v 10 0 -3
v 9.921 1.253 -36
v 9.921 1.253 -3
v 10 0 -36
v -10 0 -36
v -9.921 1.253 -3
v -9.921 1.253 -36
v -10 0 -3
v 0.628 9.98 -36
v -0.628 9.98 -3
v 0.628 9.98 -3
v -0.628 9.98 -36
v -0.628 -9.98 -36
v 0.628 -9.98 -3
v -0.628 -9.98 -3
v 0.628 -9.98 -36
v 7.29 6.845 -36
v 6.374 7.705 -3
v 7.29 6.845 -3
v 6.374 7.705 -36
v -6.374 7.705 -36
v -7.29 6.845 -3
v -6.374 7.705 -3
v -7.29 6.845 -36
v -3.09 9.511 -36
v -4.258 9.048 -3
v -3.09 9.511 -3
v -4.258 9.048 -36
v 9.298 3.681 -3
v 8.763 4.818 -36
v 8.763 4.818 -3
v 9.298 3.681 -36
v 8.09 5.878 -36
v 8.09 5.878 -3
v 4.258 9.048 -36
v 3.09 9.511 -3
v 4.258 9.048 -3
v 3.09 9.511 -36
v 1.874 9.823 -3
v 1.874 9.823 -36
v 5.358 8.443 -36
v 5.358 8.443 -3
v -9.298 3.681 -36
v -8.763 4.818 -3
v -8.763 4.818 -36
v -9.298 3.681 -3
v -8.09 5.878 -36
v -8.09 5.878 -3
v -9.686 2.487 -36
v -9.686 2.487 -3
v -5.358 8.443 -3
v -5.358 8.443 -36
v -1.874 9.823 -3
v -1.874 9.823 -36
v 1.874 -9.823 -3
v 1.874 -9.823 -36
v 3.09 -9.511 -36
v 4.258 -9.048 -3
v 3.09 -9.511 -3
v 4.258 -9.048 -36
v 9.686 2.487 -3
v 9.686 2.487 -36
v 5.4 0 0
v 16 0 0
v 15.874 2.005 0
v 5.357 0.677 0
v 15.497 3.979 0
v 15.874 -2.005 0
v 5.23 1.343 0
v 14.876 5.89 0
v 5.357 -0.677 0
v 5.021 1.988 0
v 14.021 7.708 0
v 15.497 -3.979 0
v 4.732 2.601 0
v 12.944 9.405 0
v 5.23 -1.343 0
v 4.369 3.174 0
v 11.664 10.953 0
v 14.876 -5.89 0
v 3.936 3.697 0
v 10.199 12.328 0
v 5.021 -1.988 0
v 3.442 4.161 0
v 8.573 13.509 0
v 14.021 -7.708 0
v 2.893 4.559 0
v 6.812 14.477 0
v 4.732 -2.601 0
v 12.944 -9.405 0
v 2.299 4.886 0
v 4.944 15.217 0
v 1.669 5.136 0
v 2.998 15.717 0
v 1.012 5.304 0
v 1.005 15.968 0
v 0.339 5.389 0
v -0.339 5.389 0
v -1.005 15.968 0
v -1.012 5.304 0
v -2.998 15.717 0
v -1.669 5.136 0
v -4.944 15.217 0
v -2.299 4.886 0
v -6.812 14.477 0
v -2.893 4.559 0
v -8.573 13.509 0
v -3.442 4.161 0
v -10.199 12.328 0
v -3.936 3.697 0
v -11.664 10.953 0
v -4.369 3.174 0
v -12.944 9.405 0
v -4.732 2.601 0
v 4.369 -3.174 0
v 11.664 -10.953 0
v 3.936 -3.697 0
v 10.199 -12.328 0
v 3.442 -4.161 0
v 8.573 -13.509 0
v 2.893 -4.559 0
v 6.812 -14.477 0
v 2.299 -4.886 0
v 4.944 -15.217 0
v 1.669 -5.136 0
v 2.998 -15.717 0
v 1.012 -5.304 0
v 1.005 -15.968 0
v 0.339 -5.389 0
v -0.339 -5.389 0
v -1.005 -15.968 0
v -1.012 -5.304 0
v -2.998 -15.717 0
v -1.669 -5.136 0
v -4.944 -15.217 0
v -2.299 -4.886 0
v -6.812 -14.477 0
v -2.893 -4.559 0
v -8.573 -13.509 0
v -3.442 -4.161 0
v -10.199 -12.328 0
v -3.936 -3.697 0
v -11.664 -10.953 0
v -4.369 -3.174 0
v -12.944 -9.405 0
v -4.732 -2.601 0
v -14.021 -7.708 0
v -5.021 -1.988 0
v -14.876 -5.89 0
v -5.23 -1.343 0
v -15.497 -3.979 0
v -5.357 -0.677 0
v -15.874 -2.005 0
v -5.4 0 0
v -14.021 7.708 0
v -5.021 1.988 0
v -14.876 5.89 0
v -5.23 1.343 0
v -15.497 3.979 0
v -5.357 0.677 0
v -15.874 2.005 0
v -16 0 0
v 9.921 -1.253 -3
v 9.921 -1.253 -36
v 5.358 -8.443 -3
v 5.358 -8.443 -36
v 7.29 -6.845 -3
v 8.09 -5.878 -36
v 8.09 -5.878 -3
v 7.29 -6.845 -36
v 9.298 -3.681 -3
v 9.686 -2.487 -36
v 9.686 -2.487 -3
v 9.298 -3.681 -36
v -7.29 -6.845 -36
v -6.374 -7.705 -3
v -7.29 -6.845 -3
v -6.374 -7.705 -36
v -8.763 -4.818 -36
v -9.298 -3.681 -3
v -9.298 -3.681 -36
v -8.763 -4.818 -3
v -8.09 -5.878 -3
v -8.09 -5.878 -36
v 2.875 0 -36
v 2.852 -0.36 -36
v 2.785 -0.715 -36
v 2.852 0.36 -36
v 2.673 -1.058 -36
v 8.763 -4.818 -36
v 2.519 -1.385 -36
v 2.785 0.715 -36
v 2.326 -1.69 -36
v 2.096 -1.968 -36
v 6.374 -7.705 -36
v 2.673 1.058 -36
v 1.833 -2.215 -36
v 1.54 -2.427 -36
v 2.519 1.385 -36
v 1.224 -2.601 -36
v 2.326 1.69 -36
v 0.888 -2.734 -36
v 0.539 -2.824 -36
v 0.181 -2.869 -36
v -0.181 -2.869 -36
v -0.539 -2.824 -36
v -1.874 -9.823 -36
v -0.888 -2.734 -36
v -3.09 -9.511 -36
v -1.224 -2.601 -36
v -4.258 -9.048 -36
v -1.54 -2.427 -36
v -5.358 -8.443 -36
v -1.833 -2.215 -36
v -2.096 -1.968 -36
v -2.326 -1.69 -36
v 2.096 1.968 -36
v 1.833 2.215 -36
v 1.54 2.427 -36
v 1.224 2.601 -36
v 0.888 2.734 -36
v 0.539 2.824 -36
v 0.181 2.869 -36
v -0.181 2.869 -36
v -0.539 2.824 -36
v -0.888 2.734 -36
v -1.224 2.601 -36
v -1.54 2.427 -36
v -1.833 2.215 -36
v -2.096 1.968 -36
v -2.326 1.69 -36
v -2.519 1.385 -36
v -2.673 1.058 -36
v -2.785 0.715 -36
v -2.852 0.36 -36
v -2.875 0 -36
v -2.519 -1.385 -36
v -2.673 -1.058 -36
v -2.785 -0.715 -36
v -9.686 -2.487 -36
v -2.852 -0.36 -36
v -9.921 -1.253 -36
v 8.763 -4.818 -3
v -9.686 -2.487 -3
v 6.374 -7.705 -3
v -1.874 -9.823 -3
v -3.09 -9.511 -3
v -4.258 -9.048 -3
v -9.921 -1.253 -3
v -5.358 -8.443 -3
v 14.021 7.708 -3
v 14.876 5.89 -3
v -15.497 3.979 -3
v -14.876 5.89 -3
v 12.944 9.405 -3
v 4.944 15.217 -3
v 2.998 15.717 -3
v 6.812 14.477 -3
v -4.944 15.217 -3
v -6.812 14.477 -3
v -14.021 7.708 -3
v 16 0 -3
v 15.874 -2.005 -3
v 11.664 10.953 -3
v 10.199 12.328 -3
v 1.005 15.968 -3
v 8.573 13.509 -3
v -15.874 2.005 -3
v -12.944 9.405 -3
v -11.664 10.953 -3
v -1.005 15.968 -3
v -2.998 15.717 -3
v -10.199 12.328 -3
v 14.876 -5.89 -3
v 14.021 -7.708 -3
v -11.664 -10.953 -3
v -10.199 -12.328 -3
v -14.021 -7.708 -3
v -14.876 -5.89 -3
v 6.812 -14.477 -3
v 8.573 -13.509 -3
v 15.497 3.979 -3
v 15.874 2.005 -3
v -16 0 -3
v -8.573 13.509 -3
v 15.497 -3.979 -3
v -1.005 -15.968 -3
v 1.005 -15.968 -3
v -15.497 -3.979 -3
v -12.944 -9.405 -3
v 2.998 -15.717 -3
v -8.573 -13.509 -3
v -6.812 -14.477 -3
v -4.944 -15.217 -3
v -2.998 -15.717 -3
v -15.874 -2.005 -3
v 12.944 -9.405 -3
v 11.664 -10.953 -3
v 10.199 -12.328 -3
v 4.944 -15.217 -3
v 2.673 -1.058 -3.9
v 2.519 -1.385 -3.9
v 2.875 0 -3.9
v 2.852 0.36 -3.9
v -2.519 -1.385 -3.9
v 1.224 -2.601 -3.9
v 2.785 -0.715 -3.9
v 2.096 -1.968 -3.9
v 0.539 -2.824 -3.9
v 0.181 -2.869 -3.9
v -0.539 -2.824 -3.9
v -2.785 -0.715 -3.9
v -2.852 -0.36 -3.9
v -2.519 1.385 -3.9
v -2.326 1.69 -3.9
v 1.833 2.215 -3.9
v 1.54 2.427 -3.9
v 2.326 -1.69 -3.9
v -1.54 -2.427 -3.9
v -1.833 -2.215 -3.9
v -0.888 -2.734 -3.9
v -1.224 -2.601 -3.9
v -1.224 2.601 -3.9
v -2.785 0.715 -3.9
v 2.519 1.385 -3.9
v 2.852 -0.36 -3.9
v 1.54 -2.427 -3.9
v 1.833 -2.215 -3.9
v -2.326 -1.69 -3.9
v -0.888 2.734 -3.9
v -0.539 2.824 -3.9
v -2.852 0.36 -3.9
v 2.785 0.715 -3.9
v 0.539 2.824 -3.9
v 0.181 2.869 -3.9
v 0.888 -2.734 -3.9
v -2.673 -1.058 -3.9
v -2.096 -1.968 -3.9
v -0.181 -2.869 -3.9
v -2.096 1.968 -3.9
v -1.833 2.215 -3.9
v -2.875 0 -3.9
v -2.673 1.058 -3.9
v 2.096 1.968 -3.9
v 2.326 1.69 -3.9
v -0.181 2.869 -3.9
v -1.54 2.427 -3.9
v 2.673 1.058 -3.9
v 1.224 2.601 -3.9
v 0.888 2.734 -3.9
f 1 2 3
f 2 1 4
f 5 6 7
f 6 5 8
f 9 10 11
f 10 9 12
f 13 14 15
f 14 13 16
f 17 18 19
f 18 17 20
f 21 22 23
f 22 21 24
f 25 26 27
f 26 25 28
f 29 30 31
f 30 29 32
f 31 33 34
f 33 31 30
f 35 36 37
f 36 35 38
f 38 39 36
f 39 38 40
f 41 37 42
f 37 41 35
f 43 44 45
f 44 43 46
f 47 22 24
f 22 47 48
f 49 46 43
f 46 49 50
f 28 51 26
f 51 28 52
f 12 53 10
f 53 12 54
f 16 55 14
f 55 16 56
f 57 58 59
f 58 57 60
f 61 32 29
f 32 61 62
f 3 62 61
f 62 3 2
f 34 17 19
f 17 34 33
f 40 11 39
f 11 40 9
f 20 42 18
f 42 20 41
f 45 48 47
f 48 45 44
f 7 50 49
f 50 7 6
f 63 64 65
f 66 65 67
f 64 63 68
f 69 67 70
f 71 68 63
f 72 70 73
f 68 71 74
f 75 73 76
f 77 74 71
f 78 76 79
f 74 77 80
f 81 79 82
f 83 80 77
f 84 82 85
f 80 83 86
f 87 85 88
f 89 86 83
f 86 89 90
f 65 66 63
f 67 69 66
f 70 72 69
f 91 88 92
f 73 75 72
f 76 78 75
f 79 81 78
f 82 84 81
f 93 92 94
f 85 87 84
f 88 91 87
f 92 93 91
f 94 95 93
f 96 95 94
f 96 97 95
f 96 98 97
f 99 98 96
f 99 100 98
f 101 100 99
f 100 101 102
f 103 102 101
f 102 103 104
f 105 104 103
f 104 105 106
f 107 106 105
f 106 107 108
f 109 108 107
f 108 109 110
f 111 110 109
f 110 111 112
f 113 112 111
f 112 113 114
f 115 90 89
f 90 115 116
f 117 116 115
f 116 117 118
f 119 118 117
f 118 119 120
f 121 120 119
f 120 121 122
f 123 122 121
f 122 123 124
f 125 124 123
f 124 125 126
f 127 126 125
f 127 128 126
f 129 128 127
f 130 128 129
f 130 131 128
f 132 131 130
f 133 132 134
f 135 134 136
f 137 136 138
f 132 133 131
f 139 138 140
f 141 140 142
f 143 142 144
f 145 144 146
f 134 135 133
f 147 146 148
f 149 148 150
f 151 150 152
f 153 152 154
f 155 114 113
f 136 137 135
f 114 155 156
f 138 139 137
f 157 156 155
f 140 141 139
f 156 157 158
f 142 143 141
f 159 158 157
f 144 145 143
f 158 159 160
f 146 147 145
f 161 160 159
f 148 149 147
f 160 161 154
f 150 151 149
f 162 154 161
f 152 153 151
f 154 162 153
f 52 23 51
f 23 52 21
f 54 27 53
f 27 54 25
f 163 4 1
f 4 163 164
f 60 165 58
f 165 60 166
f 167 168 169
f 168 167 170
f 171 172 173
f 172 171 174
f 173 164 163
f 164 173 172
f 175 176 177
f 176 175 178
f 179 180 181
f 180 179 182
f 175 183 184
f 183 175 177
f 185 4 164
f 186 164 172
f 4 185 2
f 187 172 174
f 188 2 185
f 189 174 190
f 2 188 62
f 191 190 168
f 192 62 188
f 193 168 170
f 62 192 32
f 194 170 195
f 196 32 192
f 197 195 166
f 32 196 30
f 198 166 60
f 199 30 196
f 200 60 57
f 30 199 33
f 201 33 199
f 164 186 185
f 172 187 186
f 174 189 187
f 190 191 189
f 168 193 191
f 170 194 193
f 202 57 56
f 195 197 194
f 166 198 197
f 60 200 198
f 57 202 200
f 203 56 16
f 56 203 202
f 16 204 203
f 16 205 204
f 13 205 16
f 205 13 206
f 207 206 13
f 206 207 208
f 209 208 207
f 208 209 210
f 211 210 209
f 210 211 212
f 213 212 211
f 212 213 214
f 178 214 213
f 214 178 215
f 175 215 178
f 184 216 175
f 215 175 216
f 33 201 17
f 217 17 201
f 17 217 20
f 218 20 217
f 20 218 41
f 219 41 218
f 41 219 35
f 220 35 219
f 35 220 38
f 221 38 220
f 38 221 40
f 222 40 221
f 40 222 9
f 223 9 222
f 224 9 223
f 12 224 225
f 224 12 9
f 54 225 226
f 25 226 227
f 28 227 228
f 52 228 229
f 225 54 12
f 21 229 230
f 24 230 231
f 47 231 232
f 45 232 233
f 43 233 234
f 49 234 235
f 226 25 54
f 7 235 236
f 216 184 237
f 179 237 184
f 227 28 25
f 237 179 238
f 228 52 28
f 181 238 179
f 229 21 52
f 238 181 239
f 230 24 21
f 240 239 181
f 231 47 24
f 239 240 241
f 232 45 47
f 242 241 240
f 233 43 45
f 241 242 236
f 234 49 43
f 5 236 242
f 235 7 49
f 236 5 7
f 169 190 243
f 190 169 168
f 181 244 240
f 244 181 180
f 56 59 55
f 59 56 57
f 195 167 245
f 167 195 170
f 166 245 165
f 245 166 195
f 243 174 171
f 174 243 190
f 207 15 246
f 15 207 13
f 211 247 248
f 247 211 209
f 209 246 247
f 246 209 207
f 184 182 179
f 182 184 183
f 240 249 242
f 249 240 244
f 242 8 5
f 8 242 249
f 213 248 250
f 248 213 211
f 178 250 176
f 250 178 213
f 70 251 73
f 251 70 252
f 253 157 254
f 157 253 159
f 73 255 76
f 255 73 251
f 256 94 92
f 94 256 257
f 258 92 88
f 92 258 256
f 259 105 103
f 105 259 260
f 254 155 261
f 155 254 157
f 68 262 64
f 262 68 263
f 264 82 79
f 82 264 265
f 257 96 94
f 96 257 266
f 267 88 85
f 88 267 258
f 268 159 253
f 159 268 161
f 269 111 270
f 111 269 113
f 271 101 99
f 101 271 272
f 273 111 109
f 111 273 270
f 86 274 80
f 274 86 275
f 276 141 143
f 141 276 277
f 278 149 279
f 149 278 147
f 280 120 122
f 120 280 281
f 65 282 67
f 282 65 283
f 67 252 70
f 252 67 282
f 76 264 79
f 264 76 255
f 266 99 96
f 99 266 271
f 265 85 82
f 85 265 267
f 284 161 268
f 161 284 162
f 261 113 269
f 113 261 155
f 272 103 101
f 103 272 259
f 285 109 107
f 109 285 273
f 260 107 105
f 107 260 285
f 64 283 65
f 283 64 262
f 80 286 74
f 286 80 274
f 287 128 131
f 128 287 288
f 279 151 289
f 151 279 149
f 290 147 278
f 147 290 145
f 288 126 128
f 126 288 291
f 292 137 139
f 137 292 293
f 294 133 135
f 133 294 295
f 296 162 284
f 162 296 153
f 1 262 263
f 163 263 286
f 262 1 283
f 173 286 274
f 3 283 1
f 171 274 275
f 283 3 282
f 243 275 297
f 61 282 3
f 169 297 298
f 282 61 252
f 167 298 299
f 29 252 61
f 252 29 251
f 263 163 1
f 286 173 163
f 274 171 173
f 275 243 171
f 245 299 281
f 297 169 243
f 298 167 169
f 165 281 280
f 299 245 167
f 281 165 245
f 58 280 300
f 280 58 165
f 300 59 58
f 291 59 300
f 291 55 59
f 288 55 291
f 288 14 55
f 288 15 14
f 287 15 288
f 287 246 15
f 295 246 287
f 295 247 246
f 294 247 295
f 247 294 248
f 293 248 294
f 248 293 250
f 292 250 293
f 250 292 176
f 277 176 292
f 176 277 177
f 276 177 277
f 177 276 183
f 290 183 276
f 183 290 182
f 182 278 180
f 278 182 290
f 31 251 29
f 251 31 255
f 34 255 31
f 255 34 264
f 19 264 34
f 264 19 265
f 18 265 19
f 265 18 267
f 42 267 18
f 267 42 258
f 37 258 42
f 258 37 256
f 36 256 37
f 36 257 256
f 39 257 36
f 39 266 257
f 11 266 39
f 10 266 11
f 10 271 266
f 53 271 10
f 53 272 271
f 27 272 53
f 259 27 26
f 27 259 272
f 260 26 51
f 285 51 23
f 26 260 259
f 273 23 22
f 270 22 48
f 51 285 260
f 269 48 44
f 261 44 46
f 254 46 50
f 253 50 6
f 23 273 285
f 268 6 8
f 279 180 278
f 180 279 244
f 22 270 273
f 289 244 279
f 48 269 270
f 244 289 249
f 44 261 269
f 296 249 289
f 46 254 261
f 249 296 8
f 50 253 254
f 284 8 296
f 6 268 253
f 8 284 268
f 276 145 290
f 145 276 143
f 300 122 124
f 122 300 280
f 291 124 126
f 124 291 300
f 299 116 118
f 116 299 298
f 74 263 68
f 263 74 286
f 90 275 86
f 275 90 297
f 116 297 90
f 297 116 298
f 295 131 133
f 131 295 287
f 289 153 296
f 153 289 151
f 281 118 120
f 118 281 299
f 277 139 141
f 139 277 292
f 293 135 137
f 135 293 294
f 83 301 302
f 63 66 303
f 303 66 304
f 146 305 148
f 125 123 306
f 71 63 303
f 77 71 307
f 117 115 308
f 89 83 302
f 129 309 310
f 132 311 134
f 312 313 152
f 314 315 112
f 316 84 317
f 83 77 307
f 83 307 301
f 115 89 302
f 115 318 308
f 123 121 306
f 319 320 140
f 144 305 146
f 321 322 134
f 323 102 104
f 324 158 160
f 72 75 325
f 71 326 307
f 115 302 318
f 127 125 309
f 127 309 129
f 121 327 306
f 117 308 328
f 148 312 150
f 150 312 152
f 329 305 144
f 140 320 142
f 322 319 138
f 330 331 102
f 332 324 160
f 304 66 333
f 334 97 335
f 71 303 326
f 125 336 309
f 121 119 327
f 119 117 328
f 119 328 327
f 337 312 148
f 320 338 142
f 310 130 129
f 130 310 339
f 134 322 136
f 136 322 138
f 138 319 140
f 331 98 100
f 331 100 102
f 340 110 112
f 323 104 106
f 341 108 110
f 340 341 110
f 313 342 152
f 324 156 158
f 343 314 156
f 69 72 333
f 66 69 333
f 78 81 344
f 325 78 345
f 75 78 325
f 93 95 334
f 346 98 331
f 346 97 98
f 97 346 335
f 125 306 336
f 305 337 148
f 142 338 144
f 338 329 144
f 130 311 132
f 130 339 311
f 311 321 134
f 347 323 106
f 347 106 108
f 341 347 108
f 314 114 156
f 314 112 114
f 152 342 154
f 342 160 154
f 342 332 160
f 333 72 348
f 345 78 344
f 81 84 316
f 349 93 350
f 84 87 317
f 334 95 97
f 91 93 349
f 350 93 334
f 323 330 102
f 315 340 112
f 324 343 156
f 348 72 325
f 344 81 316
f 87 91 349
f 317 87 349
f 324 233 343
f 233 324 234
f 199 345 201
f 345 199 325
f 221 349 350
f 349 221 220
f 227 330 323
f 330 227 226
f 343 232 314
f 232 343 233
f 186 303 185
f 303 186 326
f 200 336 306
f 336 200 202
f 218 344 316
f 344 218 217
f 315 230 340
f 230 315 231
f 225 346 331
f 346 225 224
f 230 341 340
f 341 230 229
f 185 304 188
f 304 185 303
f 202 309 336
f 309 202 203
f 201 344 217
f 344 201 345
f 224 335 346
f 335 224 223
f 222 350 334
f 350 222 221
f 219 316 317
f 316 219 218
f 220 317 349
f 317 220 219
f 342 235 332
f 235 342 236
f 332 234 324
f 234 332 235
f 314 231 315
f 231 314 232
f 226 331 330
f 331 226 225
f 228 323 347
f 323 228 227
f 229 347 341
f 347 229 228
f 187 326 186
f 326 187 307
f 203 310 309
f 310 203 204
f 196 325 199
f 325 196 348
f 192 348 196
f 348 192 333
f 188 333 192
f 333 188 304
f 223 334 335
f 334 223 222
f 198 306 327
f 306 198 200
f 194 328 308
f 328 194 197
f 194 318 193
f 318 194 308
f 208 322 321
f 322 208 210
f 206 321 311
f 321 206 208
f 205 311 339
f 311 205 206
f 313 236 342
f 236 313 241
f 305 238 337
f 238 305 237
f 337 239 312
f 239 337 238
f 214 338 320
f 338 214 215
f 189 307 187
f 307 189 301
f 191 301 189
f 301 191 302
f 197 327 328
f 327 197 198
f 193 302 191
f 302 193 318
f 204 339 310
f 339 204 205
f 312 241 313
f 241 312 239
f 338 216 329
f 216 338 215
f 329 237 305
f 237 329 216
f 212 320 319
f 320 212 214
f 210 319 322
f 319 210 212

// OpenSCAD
$fn = 50;


difference() {
	union() {
		translate(v = [0, 0, -36.0000000000]) {
			cylinder(h = 36, r = 10.0000000000);
		}
		translate(v = [0, 0, -3.0000000000]) {
			cylinder(h = 3, r = 16.0000000000);
		}
	}
	union() {
		translate(v = [0, 0, 0]) {
			rotate(a = [0, 0, 0]) {
				difference() {
					union() {
						#translate(v = [0, 0, -36.0000000000]) {
							cylinder(h = 36, r = 2.6000000000);
						}
						#translate(v = [0, 0, -3.9000000000]) {
							cylinder(h = 3.9000000000, r = 10.0000000000, r1 = 2.8750000000, r2 = 5.4000000000);
						}
						#translate(v = [0, 0, -36.0000000000]) {
							cylinder(h = 36, r = 2.8750000000);
						}
						#translate(v = [0, 0, -36.0000000000]) {
							cylinder(h = 36, r = 2.6000000000);
						}
					}
					union();
				}
			}
		}
	}
}
